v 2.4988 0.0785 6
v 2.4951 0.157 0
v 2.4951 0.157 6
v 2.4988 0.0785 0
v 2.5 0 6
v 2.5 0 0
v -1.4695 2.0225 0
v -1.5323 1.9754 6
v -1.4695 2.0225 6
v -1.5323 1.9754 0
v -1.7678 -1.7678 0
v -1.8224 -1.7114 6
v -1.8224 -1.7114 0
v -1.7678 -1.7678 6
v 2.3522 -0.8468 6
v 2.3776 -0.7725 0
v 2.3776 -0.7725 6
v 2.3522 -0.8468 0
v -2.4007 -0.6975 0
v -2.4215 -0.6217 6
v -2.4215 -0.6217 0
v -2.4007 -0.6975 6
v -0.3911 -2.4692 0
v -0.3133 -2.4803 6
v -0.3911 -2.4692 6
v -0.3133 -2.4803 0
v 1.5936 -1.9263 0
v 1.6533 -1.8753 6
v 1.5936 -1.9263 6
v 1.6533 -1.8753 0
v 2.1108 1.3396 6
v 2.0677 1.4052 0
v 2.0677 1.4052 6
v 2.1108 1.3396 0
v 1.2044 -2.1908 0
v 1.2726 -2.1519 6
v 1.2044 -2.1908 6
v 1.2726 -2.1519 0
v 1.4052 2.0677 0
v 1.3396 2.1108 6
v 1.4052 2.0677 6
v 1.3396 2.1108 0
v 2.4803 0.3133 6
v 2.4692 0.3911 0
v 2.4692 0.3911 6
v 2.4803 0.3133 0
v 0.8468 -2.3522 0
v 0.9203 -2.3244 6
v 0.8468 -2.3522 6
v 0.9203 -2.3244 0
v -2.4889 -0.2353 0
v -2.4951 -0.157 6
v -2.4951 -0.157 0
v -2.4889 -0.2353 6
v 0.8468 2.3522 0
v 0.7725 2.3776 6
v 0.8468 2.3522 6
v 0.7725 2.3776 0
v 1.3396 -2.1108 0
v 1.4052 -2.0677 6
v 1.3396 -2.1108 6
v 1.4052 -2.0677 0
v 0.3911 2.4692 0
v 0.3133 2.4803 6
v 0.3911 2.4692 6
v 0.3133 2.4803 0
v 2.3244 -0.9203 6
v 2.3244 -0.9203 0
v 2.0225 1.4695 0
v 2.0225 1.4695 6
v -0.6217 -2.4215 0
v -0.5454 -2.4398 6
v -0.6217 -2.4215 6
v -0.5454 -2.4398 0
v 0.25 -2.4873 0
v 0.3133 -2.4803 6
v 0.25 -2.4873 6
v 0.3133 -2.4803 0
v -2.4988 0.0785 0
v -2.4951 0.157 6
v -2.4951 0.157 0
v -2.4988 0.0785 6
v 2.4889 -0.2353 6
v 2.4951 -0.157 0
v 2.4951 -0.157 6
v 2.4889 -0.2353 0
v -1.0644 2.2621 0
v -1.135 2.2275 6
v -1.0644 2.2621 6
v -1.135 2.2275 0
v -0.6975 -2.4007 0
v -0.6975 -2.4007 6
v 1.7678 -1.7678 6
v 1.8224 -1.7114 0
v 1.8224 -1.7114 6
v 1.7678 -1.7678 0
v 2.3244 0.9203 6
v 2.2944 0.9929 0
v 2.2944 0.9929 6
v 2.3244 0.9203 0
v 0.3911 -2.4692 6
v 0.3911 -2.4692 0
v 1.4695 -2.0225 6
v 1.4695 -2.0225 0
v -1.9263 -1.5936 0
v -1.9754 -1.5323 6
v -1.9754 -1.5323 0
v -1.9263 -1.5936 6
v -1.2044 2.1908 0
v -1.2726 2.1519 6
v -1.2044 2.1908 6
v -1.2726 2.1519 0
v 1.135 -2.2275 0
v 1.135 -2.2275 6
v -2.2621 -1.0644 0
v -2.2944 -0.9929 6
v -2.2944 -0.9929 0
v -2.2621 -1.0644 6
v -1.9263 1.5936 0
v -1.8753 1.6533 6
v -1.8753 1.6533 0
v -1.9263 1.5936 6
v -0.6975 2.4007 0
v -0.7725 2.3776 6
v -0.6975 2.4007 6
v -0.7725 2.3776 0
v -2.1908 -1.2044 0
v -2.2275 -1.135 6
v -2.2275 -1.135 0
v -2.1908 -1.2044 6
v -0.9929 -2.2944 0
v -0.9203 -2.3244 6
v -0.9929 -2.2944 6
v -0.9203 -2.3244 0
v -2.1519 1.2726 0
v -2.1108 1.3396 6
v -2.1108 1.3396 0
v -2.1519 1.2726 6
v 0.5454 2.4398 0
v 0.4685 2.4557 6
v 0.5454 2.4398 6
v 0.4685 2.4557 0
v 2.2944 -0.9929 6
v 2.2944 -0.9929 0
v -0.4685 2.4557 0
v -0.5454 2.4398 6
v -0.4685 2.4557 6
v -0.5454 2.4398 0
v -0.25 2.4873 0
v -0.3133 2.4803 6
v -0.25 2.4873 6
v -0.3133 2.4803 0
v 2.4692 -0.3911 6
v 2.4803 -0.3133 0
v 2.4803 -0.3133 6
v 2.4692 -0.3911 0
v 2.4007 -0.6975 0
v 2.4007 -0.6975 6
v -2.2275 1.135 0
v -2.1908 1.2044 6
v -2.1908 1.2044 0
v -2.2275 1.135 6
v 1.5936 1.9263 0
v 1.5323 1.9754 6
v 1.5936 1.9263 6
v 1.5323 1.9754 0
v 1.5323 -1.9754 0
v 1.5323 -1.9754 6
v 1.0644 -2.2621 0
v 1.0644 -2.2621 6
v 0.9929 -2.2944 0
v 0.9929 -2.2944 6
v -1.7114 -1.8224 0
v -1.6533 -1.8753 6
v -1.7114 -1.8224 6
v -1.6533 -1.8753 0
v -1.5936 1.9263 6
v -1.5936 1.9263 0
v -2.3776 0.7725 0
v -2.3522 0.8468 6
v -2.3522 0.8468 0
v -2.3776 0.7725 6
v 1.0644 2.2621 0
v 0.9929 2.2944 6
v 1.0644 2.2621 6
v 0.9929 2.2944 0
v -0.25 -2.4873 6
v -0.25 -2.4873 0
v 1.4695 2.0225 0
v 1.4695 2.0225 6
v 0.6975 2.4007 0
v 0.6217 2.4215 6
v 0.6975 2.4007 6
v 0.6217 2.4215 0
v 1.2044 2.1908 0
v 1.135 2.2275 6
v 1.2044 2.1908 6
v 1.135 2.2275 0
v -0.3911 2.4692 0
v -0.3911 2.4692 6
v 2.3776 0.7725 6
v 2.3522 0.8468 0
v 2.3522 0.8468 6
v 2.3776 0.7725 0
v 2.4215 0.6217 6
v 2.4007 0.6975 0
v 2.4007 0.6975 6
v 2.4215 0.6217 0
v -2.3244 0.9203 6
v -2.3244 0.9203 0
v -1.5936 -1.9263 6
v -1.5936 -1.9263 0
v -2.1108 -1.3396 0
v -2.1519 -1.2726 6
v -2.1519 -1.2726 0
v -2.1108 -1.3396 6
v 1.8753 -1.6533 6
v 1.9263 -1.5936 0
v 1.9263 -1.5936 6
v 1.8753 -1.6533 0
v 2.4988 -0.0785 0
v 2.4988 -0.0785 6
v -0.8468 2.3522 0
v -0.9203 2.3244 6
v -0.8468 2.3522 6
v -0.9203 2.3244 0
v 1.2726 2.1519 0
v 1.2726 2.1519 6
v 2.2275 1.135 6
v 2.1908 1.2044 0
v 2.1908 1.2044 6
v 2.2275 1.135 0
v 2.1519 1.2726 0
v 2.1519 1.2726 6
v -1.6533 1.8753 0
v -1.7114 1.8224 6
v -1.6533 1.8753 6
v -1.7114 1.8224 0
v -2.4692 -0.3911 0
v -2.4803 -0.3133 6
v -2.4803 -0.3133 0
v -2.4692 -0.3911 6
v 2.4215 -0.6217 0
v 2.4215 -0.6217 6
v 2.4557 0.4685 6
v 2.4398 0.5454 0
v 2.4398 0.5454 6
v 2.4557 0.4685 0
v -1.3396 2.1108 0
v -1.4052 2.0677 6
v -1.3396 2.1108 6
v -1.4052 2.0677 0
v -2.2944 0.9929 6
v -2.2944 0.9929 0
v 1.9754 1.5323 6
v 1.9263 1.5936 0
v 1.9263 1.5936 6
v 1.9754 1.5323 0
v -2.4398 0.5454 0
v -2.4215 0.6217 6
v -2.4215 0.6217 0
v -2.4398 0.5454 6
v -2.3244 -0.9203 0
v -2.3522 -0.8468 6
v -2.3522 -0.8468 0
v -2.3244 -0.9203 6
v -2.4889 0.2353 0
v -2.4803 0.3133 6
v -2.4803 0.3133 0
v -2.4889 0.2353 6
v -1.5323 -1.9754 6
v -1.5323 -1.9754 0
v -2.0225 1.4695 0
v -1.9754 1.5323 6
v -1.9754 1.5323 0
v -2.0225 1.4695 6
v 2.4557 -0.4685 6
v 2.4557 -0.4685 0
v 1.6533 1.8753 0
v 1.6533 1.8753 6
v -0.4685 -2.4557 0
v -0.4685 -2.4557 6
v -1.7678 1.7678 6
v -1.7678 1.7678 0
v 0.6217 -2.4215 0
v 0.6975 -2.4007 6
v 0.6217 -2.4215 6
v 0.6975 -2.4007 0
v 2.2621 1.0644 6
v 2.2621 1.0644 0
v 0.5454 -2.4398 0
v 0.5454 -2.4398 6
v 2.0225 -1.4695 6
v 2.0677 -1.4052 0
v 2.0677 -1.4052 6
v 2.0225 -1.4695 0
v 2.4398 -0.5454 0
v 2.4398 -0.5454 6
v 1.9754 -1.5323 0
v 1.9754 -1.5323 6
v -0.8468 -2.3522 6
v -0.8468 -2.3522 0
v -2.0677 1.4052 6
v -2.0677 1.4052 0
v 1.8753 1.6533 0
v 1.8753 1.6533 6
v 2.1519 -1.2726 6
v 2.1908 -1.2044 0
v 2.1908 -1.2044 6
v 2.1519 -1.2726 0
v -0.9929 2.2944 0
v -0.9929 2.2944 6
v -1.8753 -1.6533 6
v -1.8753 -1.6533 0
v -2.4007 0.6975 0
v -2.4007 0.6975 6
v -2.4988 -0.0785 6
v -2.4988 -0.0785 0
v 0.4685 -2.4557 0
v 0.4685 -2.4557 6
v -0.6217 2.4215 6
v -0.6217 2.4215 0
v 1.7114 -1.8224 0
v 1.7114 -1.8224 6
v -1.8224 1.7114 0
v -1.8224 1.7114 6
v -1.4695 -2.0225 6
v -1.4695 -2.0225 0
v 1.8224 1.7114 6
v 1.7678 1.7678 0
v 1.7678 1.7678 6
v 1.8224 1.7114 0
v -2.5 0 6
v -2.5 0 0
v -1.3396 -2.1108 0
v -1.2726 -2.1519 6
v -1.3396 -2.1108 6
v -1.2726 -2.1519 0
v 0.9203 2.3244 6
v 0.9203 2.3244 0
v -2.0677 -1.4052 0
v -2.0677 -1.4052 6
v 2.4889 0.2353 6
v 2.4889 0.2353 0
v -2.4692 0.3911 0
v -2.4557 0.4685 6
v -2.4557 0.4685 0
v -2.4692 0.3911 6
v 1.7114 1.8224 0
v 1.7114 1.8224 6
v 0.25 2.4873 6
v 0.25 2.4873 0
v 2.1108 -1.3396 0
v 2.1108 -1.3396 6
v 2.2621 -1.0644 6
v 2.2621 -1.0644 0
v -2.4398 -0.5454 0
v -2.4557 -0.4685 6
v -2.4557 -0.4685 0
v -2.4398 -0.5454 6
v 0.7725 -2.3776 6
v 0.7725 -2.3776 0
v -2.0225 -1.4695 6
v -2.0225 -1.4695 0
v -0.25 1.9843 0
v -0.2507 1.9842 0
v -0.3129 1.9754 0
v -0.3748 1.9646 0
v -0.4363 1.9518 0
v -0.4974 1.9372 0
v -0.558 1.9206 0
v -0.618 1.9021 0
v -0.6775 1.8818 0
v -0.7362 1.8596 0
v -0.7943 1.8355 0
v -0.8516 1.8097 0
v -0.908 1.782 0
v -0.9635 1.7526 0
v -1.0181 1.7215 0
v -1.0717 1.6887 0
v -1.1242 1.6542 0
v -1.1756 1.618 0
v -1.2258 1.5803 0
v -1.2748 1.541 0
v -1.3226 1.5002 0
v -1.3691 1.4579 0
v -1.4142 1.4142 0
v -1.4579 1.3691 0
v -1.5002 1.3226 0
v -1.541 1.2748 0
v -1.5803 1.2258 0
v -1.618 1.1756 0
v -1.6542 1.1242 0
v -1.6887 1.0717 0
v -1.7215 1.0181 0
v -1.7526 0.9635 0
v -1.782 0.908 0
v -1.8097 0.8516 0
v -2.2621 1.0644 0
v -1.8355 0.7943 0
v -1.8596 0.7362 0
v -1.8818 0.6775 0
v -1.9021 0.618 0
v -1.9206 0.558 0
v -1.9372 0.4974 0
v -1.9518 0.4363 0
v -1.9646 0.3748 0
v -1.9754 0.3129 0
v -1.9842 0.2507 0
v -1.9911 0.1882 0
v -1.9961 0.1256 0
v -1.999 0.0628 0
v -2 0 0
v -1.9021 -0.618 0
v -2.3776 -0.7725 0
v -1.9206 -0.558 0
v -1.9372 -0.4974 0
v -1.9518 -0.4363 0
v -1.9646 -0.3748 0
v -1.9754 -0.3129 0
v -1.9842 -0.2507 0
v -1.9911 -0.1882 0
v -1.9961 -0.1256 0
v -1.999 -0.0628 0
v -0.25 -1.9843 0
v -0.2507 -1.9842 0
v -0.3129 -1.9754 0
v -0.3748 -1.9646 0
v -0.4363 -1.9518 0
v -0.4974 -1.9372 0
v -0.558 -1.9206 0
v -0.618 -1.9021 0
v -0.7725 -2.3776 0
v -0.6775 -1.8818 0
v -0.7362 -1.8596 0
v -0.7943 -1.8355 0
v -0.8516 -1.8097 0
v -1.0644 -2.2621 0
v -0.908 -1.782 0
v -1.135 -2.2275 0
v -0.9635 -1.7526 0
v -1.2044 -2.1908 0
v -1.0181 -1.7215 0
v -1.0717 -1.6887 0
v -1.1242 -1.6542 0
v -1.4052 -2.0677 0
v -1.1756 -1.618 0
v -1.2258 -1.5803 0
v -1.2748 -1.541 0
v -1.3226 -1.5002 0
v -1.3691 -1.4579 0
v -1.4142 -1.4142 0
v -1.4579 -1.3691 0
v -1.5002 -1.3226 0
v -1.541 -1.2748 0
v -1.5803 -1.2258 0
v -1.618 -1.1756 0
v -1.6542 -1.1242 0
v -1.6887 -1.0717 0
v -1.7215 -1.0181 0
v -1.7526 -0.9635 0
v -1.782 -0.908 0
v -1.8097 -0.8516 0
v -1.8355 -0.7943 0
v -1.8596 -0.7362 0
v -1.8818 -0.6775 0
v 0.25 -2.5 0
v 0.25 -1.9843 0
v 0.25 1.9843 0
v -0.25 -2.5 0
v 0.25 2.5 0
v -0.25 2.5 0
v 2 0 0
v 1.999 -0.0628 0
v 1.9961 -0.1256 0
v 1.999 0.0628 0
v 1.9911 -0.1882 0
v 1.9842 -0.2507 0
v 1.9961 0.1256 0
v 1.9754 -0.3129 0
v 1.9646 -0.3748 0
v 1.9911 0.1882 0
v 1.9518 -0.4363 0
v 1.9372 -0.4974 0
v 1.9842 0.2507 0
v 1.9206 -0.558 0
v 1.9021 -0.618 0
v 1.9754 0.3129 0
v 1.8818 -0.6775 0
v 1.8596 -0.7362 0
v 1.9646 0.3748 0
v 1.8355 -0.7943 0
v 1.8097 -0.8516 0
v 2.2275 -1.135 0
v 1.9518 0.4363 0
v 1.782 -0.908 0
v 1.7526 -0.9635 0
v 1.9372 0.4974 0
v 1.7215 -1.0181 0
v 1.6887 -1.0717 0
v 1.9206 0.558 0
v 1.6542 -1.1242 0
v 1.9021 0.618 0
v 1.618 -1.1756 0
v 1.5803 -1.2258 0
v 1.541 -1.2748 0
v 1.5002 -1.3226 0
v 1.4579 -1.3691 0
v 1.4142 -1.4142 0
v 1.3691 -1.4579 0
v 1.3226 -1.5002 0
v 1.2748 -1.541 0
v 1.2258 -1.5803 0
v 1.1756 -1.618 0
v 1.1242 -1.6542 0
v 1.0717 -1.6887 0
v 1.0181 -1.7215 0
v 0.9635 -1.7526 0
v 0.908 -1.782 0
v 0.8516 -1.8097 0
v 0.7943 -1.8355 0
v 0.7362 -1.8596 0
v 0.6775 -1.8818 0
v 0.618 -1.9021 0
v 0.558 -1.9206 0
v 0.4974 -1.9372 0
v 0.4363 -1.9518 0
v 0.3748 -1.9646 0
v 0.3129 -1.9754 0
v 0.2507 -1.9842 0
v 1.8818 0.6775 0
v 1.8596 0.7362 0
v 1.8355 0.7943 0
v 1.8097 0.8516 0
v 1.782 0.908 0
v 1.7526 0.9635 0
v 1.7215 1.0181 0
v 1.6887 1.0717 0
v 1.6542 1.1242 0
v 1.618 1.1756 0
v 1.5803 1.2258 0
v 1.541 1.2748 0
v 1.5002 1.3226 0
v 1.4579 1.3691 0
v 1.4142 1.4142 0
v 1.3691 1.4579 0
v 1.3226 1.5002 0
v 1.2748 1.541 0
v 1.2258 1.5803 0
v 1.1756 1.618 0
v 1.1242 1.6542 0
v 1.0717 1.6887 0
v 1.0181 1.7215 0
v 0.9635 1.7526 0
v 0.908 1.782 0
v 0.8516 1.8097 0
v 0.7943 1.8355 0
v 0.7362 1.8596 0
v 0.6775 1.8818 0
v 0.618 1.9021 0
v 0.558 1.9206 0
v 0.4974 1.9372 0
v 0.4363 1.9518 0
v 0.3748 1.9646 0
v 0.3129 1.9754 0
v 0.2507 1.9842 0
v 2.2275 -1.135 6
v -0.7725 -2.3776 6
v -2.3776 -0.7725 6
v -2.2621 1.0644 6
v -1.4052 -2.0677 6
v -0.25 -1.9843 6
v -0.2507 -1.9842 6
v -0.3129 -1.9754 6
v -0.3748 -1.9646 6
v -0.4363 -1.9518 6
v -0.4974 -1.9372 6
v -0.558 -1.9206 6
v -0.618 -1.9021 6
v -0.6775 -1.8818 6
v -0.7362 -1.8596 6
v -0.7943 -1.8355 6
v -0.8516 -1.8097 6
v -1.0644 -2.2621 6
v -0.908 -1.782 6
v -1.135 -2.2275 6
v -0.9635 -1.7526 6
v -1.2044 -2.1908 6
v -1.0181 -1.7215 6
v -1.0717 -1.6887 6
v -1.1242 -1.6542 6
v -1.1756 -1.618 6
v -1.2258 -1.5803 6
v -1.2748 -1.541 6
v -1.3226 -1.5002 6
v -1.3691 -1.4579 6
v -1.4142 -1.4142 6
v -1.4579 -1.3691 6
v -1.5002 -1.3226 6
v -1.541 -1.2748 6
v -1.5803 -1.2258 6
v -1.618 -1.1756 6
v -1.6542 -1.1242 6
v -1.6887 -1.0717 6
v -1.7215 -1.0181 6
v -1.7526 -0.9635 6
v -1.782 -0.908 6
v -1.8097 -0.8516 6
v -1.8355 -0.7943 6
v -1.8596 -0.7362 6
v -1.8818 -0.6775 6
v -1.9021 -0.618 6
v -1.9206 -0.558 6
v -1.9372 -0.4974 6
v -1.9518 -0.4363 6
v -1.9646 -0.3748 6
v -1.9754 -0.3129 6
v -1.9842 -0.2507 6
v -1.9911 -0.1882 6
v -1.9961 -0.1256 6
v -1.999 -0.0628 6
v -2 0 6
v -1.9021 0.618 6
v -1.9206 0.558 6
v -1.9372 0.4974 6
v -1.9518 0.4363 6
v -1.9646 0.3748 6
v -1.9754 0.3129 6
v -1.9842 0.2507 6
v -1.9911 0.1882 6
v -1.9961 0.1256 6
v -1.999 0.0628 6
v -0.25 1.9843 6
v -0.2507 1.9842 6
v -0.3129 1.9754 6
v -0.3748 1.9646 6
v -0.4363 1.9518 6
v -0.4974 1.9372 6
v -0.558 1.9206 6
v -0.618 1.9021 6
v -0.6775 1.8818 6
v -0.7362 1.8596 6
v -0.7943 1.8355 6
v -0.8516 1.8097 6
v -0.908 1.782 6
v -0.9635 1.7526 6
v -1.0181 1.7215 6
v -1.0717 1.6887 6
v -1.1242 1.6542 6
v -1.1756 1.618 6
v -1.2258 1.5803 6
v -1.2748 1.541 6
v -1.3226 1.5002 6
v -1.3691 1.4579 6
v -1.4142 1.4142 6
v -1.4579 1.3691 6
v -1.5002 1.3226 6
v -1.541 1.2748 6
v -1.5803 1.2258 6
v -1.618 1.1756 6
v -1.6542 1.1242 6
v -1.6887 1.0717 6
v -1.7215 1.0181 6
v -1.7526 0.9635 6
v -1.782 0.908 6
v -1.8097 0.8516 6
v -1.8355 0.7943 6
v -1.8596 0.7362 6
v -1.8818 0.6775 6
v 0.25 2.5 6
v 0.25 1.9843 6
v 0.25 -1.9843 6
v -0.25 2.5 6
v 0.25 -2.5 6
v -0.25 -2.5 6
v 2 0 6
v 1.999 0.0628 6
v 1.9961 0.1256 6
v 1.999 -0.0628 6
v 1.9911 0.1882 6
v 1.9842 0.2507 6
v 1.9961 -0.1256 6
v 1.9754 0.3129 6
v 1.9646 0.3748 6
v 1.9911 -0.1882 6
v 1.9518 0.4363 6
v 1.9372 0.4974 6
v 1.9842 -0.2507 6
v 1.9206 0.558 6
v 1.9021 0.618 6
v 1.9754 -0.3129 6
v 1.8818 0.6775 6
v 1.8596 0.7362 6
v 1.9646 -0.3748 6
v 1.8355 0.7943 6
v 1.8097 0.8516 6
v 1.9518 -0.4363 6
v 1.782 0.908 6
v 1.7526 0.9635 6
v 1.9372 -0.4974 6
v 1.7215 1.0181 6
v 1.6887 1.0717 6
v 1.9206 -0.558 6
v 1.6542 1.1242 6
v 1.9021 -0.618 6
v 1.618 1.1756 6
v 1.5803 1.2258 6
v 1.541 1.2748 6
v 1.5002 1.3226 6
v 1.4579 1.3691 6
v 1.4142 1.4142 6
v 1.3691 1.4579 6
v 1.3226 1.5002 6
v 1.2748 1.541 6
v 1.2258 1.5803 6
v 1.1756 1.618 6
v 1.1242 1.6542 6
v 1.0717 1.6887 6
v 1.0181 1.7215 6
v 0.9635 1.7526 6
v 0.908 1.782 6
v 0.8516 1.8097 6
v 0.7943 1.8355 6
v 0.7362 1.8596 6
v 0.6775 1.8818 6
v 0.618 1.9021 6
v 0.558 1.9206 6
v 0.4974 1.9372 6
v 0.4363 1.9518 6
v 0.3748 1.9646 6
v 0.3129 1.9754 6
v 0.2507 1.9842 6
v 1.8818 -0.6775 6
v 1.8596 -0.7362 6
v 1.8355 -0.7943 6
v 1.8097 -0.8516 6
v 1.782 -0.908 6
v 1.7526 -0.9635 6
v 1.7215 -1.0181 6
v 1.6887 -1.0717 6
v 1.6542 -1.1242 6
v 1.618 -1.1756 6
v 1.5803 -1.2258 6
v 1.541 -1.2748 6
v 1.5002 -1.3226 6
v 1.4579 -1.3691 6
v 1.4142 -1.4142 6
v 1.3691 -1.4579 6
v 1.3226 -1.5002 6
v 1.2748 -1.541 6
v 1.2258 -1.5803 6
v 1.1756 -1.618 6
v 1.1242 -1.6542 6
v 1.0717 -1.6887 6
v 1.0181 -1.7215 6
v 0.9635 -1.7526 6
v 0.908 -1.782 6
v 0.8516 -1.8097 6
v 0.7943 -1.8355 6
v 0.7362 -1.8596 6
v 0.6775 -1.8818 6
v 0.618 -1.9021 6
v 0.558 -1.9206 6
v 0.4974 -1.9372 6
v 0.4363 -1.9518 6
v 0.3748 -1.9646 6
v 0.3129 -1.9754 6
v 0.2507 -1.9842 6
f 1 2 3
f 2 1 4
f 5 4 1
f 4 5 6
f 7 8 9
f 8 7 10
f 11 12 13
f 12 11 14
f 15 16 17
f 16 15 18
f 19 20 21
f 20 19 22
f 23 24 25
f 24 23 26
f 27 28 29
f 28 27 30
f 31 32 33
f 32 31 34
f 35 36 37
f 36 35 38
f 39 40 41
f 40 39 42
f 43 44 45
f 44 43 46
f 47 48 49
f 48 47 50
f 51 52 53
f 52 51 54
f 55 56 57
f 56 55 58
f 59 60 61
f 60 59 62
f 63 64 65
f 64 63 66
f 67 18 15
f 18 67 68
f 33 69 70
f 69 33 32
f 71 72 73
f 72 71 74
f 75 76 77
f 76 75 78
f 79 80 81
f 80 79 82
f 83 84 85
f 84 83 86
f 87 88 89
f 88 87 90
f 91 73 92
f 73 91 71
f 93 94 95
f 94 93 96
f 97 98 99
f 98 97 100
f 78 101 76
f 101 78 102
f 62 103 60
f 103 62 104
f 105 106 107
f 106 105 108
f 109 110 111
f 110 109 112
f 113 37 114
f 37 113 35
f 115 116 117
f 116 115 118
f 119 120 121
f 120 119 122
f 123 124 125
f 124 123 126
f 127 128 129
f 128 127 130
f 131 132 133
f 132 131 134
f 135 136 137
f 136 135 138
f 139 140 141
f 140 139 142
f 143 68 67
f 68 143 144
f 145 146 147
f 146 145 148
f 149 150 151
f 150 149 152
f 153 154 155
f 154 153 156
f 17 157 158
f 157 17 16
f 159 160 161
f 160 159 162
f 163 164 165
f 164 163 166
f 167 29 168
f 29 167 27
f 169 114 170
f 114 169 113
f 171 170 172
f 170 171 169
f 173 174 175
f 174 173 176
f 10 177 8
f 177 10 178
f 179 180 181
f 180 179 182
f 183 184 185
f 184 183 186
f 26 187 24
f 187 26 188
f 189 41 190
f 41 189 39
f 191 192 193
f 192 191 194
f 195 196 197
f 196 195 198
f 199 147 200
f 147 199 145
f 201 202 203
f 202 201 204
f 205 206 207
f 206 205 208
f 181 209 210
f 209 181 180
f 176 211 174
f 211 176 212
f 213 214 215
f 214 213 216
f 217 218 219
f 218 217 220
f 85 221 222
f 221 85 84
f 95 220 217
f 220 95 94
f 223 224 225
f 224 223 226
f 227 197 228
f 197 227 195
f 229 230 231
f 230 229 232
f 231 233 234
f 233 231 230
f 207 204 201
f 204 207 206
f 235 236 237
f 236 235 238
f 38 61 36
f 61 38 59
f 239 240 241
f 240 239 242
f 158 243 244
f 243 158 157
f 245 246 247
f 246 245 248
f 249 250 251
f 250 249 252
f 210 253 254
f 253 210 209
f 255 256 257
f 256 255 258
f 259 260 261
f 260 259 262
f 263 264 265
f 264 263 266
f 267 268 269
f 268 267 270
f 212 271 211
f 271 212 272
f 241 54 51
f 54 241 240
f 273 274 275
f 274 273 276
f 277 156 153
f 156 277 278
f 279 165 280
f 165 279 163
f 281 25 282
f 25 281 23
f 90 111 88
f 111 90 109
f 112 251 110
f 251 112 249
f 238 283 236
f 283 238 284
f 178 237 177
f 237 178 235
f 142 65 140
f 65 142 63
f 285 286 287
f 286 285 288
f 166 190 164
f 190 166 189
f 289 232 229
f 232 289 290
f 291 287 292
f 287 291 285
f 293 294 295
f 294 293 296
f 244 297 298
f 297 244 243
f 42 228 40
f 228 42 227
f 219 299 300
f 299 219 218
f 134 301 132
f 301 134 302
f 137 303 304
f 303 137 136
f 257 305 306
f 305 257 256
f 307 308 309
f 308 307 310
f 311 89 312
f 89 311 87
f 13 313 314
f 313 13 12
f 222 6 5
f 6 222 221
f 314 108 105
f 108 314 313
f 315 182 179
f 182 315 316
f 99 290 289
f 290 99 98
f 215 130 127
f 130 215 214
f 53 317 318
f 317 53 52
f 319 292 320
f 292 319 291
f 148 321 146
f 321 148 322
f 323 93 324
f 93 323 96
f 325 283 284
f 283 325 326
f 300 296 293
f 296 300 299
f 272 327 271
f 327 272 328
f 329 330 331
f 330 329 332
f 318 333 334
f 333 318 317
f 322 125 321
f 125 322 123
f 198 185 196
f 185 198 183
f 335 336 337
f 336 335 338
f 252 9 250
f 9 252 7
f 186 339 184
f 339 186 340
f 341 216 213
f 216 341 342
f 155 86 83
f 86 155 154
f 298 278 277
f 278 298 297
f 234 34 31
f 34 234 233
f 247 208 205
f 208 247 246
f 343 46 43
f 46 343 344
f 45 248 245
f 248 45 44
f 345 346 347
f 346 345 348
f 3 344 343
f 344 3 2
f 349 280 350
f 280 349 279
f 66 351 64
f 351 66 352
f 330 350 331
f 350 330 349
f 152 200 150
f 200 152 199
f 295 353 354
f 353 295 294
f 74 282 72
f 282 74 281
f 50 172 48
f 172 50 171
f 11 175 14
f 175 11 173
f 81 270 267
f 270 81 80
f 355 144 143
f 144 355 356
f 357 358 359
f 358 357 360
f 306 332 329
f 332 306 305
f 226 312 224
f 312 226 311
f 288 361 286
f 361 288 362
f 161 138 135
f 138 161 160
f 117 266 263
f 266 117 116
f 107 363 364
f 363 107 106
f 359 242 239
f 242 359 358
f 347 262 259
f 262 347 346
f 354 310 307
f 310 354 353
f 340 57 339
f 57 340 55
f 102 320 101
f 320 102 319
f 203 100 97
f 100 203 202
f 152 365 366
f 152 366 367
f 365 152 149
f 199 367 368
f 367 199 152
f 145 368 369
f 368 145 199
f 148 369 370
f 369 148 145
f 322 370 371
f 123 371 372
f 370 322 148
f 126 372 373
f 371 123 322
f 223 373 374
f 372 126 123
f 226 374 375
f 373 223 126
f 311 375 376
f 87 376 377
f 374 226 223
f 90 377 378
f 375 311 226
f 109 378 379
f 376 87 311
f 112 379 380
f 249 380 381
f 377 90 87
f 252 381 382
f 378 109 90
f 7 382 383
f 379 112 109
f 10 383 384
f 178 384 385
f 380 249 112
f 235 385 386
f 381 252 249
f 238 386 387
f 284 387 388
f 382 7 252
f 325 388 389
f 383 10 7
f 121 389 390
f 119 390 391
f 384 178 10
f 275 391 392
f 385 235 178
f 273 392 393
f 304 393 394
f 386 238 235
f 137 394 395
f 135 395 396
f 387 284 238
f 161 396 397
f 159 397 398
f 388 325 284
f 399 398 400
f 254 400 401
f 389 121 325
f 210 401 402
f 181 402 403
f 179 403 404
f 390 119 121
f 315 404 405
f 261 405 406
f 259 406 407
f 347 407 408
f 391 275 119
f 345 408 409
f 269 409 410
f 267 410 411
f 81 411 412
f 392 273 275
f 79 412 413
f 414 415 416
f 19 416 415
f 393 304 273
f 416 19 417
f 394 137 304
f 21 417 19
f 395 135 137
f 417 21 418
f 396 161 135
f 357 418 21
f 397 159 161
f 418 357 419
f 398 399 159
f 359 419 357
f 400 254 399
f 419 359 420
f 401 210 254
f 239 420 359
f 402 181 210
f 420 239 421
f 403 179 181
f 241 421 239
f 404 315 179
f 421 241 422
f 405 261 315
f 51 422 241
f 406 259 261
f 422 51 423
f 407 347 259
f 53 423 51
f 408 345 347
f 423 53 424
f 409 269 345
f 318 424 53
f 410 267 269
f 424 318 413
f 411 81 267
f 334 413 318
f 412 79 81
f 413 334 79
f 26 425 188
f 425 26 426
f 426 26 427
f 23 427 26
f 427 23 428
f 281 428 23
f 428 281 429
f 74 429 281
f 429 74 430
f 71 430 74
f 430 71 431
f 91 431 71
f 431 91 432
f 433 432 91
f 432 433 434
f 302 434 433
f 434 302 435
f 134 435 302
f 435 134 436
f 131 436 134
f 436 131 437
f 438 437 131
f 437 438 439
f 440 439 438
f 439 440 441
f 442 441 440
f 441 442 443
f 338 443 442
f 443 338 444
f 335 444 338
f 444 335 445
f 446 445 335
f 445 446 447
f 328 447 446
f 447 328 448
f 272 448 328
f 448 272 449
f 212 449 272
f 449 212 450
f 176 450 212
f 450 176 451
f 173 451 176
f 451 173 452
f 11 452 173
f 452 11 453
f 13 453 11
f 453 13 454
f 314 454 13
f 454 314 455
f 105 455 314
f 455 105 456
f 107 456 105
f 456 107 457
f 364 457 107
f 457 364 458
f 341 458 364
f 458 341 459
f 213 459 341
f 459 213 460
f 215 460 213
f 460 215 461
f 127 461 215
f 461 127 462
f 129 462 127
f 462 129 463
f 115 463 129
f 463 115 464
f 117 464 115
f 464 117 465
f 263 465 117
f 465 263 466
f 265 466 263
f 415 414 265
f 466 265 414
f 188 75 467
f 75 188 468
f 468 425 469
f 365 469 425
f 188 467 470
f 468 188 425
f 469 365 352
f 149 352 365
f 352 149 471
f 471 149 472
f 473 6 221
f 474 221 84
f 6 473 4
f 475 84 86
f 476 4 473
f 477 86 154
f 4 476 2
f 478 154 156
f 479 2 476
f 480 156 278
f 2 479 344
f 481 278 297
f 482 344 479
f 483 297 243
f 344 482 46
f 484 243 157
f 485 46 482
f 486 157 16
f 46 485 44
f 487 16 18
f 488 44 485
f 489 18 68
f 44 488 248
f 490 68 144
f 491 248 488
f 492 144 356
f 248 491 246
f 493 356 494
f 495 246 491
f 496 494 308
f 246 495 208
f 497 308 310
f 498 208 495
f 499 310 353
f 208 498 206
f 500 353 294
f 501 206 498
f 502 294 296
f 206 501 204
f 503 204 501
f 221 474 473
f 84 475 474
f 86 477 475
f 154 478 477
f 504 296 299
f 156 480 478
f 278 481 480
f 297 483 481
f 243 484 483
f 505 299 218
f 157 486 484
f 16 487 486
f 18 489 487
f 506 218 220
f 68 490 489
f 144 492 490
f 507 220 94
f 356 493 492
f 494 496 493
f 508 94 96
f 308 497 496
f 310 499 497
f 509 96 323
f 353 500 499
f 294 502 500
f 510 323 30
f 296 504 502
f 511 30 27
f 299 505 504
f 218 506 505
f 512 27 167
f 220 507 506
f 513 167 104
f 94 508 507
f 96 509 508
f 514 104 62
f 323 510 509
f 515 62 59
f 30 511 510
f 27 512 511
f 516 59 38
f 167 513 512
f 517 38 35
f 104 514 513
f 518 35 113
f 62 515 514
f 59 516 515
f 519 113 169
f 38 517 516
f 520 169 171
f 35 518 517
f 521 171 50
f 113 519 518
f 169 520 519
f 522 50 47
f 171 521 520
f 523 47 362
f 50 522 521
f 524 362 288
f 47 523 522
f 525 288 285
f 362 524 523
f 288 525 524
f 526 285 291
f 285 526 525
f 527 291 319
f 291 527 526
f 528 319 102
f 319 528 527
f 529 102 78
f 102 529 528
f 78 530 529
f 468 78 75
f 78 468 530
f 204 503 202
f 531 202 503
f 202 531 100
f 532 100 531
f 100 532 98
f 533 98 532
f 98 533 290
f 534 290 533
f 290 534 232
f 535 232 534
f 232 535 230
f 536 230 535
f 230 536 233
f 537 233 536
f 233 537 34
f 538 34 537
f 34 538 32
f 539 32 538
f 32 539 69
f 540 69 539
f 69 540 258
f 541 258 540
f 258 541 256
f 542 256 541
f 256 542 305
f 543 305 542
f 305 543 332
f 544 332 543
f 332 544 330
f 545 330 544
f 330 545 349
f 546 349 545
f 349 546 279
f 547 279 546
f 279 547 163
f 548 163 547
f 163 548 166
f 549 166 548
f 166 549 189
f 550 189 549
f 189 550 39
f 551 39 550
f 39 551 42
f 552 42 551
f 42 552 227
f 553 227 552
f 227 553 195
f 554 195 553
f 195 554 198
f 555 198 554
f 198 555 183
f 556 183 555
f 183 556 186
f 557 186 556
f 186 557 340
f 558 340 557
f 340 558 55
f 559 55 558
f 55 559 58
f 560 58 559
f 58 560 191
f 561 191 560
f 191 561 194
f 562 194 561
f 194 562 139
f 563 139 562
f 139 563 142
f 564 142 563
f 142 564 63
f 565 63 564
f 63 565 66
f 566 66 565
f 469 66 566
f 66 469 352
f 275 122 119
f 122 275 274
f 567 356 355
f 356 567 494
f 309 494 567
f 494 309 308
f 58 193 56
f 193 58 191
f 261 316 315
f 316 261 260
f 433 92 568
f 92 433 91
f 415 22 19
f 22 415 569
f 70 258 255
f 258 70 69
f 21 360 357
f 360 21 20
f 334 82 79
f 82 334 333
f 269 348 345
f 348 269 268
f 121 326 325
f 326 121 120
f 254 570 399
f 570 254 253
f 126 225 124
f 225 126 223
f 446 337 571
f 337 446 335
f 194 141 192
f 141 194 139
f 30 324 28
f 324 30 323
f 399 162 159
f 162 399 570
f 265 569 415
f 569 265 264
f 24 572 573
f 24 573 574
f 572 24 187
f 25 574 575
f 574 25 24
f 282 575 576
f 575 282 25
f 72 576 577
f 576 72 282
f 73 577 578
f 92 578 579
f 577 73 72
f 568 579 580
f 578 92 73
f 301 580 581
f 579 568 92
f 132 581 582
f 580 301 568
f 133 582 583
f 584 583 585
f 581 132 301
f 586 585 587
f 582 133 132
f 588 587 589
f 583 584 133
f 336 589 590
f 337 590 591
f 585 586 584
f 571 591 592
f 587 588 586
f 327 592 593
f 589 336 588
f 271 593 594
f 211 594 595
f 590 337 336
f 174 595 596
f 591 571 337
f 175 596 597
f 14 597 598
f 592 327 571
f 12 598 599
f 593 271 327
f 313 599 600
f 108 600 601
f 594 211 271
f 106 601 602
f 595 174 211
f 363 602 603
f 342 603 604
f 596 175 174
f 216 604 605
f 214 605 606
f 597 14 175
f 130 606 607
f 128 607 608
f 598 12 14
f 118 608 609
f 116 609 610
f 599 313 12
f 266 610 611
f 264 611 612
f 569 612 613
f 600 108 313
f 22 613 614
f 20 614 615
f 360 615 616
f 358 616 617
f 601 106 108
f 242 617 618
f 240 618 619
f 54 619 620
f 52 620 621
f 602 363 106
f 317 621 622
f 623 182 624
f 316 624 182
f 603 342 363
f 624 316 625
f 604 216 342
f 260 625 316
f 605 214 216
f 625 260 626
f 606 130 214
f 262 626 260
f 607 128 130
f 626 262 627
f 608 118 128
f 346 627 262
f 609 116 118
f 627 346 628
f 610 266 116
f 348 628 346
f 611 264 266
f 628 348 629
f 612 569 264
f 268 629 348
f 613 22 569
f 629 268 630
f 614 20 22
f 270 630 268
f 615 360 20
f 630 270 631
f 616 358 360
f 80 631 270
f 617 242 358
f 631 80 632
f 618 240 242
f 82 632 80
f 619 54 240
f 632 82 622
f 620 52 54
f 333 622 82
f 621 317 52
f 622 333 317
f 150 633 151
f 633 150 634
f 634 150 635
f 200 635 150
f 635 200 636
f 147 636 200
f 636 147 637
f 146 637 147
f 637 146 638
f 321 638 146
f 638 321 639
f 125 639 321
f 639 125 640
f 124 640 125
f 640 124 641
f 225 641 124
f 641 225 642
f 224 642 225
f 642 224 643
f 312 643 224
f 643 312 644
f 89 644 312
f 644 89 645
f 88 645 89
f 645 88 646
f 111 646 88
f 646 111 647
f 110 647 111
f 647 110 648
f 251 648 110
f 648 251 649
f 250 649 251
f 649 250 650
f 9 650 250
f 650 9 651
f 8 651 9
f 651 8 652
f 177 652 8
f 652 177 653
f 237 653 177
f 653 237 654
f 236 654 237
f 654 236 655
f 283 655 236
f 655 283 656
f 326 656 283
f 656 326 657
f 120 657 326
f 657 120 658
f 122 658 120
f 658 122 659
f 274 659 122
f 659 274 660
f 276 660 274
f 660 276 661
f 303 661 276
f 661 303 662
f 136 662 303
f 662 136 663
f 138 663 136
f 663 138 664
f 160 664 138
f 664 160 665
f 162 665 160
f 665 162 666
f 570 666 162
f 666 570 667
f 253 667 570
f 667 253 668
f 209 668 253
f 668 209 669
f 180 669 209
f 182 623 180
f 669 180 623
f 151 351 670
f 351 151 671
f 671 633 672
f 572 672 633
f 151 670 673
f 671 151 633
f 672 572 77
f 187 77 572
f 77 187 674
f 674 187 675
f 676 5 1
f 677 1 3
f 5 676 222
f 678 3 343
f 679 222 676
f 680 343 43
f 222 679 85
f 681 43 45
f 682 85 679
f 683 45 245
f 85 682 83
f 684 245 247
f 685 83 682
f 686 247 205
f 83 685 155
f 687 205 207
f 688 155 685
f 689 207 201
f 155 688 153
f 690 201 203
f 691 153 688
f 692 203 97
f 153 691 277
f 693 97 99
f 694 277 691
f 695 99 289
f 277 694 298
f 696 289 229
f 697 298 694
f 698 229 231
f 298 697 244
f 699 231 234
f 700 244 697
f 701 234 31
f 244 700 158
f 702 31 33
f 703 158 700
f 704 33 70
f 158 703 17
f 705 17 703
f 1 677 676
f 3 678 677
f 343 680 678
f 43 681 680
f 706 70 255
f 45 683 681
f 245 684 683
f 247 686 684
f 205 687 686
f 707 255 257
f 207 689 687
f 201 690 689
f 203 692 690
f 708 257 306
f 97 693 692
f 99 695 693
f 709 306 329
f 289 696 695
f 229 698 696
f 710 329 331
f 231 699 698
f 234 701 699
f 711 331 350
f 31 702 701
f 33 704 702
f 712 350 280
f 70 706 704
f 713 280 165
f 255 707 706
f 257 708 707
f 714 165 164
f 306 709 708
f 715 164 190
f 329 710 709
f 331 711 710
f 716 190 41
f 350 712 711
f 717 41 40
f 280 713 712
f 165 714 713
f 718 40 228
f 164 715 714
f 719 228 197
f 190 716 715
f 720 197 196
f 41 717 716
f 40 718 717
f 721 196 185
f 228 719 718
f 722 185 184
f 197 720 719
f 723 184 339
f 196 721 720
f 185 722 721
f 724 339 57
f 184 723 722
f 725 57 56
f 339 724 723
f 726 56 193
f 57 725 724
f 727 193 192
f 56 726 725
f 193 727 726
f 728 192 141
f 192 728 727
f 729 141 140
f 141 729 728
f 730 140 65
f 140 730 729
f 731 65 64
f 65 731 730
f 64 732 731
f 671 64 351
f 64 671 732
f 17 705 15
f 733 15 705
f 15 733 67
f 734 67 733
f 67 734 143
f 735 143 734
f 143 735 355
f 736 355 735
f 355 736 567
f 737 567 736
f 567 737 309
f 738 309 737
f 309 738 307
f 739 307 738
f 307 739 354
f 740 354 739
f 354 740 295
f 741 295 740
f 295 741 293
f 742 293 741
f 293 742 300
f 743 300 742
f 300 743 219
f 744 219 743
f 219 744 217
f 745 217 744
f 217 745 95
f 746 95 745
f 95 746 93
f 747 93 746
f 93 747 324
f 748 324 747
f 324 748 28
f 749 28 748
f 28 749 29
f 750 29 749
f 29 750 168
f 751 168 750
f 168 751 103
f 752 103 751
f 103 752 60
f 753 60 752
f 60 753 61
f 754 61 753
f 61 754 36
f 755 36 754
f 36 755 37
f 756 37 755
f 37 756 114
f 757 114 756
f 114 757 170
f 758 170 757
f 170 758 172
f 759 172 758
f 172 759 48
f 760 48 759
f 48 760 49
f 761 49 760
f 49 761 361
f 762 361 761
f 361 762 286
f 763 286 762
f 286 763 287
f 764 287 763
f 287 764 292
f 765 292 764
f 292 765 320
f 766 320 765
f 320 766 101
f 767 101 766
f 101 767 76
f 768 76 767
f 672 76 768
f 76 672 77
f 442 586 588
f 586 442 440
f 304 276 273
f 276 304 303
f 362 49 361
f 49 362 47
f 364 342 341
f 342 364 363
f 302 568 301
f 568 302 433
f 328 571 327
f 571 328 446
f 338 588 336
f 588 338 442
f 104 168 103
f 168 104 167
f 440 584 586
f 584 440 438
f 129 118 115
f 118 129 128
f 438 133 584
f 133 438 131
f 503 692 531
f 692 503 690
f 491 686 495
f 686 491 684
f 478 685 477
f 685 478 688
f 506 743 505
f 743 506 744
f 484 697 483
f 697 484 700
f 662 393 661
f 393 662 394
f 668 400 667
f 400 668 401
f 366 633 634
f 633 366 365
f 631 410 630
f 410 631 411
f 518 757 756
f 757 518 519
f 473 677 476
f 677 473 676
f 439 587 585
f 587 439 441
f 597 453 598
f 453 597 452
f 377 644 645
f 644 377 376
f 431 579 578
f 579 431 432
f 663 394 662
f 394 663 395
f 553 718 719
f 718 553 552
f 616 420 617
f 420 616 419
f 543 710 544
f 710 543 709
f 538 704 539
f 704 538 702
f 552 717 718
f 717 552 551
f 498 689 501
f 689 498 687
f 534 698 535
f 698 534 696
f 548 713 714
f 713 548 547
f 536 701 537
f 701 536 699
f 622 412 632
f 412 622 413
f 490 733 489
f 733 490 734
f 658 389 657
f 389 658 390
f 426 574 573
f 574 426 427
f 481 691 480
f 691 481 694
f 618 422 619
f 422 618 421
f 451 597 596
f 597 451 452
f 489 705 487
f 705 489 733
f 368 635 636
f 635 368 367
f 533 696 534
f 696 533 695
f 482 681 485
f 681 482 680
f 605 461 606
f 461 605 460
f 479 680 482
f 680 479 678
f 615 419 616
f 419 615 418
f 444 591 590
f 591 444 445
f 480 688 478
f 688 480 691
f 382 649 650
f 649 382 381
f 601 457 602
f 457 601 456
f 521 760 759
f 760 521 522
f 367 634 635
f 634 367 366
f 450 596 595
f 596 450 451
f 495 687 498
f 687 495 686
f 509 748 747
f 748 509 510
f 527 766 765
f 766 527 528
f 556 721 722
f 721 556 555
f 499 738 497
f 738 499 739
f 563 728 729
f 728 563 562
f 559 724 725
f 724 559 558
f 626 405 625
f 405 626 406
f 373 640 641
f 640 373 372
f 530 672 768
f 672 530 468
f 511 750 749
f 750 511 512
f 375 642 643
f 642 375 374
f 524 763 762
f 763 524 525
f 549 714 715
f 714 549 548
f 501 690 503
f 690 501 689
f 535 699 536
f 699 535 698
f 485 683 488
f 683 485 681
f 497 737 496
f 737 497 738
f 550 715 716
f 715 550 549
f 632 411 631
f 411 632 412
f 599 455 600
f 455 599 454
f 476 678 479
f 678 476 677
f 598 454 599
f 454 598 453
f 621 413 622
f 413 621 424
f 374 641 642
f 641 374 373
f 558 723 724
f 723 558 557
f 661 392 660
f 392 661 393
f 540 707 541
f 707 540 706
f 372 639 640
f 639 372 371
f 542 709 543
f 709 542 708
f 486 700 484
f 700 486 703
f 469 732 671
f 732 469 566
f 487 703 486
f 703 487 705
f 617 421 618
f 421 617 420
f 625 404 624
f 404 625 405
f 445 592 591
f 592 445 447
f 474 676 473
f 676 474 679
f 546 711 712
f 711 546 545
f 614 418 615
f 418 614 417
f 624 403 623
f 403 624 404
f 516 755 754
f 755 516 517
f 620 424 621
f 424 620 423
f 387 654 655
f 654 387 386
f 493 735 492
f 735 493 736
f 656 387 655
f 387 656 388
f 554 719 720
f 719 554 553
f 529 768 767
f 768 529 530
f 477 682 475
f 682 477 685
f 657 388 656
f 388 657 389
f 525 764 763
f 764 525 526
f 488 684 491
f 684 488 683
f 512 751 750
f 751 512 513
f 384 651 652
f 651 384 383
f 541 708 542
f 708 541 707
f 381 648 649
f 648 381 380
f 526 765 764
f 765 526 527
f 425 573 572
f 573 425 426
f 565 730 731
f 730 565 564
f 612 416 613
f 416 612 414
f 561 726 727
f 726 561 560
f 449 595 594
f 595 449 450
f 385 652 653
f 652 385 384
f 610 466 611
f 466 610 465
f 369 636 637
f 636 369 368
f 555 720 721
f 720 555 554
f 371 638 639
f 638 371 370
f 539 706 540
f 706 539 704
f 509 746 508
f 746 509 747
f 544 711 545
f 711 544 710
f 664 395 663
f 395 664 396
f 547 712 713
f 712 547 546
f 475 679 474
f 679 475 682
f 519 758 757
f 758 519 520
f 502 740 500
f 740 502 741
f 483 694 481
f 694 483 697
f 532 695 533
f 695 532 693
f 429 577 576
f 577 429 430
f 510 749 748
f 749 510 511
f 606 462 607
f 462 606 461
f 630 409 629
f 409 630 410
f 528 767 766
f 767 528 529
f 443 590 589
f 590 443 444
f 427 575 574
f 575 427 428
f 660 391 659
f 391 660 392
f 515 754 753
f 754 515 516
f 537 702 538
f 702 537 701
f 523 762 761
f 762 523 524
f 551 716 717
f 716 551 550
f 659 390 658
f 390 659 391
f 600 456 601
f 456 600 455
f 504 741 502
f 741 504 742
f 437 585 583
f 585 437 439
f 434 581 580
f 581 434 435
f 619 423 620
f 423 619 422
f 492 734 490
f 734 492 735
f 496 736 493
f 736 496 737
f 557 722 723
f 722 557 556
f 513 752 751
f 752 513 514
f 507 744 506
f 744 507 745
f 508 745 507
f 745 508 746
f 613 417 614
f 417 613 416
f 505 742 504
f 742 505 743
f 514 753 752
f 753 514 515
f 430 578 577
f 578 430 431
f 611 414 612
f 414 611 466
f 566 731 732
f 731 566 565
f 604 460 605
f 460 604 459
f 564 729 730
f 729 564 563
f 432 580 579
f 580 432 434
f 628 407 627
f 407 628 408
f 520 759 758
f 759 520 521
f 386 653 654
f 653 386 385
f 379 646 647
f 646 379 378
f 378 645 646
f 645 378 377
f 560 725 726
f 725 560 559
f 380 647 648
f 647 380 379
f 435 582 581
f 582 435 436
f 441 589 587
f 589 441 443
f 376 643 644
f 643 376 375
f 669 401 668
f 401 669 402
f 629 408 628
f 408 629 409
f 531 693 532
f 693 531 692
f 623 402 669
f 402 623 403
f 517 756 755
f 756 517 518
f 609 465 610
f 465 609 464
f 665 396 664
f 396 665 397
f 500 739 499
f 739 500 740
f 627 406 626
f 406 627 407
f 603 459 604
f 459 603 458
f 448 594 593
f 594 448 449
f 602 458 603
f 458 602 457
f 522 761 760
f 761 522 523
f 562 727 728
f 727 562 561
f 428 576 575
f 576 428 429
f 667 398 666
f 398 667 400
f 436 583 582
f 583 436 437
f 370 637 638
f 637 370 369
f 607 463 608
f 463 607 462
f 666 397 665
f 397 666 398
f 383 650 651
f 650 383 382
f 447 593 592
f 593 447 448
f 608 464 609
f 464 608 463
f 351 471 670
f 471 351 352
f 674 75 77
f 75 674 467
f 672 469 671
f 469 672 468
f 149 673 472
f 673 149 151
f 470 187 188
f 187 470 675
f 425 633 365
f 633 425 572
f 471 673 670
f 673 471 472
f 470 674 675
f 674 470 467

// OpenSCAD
$fn = 200;

// button is 5mm tall, then the 2mm thickness of the button cap
// the LEDs have a 1mm ish rim 
// so we want the spacrs to be 6mm or so

difference() {
    cylinder(6, 2.5, 2.5);
    translate([0, 0, -0.1])
        cylinder(6.2, 2, 2);
}
translate([-0.25, -2.5, 0])
    cube([0.5, 5, 6]);
